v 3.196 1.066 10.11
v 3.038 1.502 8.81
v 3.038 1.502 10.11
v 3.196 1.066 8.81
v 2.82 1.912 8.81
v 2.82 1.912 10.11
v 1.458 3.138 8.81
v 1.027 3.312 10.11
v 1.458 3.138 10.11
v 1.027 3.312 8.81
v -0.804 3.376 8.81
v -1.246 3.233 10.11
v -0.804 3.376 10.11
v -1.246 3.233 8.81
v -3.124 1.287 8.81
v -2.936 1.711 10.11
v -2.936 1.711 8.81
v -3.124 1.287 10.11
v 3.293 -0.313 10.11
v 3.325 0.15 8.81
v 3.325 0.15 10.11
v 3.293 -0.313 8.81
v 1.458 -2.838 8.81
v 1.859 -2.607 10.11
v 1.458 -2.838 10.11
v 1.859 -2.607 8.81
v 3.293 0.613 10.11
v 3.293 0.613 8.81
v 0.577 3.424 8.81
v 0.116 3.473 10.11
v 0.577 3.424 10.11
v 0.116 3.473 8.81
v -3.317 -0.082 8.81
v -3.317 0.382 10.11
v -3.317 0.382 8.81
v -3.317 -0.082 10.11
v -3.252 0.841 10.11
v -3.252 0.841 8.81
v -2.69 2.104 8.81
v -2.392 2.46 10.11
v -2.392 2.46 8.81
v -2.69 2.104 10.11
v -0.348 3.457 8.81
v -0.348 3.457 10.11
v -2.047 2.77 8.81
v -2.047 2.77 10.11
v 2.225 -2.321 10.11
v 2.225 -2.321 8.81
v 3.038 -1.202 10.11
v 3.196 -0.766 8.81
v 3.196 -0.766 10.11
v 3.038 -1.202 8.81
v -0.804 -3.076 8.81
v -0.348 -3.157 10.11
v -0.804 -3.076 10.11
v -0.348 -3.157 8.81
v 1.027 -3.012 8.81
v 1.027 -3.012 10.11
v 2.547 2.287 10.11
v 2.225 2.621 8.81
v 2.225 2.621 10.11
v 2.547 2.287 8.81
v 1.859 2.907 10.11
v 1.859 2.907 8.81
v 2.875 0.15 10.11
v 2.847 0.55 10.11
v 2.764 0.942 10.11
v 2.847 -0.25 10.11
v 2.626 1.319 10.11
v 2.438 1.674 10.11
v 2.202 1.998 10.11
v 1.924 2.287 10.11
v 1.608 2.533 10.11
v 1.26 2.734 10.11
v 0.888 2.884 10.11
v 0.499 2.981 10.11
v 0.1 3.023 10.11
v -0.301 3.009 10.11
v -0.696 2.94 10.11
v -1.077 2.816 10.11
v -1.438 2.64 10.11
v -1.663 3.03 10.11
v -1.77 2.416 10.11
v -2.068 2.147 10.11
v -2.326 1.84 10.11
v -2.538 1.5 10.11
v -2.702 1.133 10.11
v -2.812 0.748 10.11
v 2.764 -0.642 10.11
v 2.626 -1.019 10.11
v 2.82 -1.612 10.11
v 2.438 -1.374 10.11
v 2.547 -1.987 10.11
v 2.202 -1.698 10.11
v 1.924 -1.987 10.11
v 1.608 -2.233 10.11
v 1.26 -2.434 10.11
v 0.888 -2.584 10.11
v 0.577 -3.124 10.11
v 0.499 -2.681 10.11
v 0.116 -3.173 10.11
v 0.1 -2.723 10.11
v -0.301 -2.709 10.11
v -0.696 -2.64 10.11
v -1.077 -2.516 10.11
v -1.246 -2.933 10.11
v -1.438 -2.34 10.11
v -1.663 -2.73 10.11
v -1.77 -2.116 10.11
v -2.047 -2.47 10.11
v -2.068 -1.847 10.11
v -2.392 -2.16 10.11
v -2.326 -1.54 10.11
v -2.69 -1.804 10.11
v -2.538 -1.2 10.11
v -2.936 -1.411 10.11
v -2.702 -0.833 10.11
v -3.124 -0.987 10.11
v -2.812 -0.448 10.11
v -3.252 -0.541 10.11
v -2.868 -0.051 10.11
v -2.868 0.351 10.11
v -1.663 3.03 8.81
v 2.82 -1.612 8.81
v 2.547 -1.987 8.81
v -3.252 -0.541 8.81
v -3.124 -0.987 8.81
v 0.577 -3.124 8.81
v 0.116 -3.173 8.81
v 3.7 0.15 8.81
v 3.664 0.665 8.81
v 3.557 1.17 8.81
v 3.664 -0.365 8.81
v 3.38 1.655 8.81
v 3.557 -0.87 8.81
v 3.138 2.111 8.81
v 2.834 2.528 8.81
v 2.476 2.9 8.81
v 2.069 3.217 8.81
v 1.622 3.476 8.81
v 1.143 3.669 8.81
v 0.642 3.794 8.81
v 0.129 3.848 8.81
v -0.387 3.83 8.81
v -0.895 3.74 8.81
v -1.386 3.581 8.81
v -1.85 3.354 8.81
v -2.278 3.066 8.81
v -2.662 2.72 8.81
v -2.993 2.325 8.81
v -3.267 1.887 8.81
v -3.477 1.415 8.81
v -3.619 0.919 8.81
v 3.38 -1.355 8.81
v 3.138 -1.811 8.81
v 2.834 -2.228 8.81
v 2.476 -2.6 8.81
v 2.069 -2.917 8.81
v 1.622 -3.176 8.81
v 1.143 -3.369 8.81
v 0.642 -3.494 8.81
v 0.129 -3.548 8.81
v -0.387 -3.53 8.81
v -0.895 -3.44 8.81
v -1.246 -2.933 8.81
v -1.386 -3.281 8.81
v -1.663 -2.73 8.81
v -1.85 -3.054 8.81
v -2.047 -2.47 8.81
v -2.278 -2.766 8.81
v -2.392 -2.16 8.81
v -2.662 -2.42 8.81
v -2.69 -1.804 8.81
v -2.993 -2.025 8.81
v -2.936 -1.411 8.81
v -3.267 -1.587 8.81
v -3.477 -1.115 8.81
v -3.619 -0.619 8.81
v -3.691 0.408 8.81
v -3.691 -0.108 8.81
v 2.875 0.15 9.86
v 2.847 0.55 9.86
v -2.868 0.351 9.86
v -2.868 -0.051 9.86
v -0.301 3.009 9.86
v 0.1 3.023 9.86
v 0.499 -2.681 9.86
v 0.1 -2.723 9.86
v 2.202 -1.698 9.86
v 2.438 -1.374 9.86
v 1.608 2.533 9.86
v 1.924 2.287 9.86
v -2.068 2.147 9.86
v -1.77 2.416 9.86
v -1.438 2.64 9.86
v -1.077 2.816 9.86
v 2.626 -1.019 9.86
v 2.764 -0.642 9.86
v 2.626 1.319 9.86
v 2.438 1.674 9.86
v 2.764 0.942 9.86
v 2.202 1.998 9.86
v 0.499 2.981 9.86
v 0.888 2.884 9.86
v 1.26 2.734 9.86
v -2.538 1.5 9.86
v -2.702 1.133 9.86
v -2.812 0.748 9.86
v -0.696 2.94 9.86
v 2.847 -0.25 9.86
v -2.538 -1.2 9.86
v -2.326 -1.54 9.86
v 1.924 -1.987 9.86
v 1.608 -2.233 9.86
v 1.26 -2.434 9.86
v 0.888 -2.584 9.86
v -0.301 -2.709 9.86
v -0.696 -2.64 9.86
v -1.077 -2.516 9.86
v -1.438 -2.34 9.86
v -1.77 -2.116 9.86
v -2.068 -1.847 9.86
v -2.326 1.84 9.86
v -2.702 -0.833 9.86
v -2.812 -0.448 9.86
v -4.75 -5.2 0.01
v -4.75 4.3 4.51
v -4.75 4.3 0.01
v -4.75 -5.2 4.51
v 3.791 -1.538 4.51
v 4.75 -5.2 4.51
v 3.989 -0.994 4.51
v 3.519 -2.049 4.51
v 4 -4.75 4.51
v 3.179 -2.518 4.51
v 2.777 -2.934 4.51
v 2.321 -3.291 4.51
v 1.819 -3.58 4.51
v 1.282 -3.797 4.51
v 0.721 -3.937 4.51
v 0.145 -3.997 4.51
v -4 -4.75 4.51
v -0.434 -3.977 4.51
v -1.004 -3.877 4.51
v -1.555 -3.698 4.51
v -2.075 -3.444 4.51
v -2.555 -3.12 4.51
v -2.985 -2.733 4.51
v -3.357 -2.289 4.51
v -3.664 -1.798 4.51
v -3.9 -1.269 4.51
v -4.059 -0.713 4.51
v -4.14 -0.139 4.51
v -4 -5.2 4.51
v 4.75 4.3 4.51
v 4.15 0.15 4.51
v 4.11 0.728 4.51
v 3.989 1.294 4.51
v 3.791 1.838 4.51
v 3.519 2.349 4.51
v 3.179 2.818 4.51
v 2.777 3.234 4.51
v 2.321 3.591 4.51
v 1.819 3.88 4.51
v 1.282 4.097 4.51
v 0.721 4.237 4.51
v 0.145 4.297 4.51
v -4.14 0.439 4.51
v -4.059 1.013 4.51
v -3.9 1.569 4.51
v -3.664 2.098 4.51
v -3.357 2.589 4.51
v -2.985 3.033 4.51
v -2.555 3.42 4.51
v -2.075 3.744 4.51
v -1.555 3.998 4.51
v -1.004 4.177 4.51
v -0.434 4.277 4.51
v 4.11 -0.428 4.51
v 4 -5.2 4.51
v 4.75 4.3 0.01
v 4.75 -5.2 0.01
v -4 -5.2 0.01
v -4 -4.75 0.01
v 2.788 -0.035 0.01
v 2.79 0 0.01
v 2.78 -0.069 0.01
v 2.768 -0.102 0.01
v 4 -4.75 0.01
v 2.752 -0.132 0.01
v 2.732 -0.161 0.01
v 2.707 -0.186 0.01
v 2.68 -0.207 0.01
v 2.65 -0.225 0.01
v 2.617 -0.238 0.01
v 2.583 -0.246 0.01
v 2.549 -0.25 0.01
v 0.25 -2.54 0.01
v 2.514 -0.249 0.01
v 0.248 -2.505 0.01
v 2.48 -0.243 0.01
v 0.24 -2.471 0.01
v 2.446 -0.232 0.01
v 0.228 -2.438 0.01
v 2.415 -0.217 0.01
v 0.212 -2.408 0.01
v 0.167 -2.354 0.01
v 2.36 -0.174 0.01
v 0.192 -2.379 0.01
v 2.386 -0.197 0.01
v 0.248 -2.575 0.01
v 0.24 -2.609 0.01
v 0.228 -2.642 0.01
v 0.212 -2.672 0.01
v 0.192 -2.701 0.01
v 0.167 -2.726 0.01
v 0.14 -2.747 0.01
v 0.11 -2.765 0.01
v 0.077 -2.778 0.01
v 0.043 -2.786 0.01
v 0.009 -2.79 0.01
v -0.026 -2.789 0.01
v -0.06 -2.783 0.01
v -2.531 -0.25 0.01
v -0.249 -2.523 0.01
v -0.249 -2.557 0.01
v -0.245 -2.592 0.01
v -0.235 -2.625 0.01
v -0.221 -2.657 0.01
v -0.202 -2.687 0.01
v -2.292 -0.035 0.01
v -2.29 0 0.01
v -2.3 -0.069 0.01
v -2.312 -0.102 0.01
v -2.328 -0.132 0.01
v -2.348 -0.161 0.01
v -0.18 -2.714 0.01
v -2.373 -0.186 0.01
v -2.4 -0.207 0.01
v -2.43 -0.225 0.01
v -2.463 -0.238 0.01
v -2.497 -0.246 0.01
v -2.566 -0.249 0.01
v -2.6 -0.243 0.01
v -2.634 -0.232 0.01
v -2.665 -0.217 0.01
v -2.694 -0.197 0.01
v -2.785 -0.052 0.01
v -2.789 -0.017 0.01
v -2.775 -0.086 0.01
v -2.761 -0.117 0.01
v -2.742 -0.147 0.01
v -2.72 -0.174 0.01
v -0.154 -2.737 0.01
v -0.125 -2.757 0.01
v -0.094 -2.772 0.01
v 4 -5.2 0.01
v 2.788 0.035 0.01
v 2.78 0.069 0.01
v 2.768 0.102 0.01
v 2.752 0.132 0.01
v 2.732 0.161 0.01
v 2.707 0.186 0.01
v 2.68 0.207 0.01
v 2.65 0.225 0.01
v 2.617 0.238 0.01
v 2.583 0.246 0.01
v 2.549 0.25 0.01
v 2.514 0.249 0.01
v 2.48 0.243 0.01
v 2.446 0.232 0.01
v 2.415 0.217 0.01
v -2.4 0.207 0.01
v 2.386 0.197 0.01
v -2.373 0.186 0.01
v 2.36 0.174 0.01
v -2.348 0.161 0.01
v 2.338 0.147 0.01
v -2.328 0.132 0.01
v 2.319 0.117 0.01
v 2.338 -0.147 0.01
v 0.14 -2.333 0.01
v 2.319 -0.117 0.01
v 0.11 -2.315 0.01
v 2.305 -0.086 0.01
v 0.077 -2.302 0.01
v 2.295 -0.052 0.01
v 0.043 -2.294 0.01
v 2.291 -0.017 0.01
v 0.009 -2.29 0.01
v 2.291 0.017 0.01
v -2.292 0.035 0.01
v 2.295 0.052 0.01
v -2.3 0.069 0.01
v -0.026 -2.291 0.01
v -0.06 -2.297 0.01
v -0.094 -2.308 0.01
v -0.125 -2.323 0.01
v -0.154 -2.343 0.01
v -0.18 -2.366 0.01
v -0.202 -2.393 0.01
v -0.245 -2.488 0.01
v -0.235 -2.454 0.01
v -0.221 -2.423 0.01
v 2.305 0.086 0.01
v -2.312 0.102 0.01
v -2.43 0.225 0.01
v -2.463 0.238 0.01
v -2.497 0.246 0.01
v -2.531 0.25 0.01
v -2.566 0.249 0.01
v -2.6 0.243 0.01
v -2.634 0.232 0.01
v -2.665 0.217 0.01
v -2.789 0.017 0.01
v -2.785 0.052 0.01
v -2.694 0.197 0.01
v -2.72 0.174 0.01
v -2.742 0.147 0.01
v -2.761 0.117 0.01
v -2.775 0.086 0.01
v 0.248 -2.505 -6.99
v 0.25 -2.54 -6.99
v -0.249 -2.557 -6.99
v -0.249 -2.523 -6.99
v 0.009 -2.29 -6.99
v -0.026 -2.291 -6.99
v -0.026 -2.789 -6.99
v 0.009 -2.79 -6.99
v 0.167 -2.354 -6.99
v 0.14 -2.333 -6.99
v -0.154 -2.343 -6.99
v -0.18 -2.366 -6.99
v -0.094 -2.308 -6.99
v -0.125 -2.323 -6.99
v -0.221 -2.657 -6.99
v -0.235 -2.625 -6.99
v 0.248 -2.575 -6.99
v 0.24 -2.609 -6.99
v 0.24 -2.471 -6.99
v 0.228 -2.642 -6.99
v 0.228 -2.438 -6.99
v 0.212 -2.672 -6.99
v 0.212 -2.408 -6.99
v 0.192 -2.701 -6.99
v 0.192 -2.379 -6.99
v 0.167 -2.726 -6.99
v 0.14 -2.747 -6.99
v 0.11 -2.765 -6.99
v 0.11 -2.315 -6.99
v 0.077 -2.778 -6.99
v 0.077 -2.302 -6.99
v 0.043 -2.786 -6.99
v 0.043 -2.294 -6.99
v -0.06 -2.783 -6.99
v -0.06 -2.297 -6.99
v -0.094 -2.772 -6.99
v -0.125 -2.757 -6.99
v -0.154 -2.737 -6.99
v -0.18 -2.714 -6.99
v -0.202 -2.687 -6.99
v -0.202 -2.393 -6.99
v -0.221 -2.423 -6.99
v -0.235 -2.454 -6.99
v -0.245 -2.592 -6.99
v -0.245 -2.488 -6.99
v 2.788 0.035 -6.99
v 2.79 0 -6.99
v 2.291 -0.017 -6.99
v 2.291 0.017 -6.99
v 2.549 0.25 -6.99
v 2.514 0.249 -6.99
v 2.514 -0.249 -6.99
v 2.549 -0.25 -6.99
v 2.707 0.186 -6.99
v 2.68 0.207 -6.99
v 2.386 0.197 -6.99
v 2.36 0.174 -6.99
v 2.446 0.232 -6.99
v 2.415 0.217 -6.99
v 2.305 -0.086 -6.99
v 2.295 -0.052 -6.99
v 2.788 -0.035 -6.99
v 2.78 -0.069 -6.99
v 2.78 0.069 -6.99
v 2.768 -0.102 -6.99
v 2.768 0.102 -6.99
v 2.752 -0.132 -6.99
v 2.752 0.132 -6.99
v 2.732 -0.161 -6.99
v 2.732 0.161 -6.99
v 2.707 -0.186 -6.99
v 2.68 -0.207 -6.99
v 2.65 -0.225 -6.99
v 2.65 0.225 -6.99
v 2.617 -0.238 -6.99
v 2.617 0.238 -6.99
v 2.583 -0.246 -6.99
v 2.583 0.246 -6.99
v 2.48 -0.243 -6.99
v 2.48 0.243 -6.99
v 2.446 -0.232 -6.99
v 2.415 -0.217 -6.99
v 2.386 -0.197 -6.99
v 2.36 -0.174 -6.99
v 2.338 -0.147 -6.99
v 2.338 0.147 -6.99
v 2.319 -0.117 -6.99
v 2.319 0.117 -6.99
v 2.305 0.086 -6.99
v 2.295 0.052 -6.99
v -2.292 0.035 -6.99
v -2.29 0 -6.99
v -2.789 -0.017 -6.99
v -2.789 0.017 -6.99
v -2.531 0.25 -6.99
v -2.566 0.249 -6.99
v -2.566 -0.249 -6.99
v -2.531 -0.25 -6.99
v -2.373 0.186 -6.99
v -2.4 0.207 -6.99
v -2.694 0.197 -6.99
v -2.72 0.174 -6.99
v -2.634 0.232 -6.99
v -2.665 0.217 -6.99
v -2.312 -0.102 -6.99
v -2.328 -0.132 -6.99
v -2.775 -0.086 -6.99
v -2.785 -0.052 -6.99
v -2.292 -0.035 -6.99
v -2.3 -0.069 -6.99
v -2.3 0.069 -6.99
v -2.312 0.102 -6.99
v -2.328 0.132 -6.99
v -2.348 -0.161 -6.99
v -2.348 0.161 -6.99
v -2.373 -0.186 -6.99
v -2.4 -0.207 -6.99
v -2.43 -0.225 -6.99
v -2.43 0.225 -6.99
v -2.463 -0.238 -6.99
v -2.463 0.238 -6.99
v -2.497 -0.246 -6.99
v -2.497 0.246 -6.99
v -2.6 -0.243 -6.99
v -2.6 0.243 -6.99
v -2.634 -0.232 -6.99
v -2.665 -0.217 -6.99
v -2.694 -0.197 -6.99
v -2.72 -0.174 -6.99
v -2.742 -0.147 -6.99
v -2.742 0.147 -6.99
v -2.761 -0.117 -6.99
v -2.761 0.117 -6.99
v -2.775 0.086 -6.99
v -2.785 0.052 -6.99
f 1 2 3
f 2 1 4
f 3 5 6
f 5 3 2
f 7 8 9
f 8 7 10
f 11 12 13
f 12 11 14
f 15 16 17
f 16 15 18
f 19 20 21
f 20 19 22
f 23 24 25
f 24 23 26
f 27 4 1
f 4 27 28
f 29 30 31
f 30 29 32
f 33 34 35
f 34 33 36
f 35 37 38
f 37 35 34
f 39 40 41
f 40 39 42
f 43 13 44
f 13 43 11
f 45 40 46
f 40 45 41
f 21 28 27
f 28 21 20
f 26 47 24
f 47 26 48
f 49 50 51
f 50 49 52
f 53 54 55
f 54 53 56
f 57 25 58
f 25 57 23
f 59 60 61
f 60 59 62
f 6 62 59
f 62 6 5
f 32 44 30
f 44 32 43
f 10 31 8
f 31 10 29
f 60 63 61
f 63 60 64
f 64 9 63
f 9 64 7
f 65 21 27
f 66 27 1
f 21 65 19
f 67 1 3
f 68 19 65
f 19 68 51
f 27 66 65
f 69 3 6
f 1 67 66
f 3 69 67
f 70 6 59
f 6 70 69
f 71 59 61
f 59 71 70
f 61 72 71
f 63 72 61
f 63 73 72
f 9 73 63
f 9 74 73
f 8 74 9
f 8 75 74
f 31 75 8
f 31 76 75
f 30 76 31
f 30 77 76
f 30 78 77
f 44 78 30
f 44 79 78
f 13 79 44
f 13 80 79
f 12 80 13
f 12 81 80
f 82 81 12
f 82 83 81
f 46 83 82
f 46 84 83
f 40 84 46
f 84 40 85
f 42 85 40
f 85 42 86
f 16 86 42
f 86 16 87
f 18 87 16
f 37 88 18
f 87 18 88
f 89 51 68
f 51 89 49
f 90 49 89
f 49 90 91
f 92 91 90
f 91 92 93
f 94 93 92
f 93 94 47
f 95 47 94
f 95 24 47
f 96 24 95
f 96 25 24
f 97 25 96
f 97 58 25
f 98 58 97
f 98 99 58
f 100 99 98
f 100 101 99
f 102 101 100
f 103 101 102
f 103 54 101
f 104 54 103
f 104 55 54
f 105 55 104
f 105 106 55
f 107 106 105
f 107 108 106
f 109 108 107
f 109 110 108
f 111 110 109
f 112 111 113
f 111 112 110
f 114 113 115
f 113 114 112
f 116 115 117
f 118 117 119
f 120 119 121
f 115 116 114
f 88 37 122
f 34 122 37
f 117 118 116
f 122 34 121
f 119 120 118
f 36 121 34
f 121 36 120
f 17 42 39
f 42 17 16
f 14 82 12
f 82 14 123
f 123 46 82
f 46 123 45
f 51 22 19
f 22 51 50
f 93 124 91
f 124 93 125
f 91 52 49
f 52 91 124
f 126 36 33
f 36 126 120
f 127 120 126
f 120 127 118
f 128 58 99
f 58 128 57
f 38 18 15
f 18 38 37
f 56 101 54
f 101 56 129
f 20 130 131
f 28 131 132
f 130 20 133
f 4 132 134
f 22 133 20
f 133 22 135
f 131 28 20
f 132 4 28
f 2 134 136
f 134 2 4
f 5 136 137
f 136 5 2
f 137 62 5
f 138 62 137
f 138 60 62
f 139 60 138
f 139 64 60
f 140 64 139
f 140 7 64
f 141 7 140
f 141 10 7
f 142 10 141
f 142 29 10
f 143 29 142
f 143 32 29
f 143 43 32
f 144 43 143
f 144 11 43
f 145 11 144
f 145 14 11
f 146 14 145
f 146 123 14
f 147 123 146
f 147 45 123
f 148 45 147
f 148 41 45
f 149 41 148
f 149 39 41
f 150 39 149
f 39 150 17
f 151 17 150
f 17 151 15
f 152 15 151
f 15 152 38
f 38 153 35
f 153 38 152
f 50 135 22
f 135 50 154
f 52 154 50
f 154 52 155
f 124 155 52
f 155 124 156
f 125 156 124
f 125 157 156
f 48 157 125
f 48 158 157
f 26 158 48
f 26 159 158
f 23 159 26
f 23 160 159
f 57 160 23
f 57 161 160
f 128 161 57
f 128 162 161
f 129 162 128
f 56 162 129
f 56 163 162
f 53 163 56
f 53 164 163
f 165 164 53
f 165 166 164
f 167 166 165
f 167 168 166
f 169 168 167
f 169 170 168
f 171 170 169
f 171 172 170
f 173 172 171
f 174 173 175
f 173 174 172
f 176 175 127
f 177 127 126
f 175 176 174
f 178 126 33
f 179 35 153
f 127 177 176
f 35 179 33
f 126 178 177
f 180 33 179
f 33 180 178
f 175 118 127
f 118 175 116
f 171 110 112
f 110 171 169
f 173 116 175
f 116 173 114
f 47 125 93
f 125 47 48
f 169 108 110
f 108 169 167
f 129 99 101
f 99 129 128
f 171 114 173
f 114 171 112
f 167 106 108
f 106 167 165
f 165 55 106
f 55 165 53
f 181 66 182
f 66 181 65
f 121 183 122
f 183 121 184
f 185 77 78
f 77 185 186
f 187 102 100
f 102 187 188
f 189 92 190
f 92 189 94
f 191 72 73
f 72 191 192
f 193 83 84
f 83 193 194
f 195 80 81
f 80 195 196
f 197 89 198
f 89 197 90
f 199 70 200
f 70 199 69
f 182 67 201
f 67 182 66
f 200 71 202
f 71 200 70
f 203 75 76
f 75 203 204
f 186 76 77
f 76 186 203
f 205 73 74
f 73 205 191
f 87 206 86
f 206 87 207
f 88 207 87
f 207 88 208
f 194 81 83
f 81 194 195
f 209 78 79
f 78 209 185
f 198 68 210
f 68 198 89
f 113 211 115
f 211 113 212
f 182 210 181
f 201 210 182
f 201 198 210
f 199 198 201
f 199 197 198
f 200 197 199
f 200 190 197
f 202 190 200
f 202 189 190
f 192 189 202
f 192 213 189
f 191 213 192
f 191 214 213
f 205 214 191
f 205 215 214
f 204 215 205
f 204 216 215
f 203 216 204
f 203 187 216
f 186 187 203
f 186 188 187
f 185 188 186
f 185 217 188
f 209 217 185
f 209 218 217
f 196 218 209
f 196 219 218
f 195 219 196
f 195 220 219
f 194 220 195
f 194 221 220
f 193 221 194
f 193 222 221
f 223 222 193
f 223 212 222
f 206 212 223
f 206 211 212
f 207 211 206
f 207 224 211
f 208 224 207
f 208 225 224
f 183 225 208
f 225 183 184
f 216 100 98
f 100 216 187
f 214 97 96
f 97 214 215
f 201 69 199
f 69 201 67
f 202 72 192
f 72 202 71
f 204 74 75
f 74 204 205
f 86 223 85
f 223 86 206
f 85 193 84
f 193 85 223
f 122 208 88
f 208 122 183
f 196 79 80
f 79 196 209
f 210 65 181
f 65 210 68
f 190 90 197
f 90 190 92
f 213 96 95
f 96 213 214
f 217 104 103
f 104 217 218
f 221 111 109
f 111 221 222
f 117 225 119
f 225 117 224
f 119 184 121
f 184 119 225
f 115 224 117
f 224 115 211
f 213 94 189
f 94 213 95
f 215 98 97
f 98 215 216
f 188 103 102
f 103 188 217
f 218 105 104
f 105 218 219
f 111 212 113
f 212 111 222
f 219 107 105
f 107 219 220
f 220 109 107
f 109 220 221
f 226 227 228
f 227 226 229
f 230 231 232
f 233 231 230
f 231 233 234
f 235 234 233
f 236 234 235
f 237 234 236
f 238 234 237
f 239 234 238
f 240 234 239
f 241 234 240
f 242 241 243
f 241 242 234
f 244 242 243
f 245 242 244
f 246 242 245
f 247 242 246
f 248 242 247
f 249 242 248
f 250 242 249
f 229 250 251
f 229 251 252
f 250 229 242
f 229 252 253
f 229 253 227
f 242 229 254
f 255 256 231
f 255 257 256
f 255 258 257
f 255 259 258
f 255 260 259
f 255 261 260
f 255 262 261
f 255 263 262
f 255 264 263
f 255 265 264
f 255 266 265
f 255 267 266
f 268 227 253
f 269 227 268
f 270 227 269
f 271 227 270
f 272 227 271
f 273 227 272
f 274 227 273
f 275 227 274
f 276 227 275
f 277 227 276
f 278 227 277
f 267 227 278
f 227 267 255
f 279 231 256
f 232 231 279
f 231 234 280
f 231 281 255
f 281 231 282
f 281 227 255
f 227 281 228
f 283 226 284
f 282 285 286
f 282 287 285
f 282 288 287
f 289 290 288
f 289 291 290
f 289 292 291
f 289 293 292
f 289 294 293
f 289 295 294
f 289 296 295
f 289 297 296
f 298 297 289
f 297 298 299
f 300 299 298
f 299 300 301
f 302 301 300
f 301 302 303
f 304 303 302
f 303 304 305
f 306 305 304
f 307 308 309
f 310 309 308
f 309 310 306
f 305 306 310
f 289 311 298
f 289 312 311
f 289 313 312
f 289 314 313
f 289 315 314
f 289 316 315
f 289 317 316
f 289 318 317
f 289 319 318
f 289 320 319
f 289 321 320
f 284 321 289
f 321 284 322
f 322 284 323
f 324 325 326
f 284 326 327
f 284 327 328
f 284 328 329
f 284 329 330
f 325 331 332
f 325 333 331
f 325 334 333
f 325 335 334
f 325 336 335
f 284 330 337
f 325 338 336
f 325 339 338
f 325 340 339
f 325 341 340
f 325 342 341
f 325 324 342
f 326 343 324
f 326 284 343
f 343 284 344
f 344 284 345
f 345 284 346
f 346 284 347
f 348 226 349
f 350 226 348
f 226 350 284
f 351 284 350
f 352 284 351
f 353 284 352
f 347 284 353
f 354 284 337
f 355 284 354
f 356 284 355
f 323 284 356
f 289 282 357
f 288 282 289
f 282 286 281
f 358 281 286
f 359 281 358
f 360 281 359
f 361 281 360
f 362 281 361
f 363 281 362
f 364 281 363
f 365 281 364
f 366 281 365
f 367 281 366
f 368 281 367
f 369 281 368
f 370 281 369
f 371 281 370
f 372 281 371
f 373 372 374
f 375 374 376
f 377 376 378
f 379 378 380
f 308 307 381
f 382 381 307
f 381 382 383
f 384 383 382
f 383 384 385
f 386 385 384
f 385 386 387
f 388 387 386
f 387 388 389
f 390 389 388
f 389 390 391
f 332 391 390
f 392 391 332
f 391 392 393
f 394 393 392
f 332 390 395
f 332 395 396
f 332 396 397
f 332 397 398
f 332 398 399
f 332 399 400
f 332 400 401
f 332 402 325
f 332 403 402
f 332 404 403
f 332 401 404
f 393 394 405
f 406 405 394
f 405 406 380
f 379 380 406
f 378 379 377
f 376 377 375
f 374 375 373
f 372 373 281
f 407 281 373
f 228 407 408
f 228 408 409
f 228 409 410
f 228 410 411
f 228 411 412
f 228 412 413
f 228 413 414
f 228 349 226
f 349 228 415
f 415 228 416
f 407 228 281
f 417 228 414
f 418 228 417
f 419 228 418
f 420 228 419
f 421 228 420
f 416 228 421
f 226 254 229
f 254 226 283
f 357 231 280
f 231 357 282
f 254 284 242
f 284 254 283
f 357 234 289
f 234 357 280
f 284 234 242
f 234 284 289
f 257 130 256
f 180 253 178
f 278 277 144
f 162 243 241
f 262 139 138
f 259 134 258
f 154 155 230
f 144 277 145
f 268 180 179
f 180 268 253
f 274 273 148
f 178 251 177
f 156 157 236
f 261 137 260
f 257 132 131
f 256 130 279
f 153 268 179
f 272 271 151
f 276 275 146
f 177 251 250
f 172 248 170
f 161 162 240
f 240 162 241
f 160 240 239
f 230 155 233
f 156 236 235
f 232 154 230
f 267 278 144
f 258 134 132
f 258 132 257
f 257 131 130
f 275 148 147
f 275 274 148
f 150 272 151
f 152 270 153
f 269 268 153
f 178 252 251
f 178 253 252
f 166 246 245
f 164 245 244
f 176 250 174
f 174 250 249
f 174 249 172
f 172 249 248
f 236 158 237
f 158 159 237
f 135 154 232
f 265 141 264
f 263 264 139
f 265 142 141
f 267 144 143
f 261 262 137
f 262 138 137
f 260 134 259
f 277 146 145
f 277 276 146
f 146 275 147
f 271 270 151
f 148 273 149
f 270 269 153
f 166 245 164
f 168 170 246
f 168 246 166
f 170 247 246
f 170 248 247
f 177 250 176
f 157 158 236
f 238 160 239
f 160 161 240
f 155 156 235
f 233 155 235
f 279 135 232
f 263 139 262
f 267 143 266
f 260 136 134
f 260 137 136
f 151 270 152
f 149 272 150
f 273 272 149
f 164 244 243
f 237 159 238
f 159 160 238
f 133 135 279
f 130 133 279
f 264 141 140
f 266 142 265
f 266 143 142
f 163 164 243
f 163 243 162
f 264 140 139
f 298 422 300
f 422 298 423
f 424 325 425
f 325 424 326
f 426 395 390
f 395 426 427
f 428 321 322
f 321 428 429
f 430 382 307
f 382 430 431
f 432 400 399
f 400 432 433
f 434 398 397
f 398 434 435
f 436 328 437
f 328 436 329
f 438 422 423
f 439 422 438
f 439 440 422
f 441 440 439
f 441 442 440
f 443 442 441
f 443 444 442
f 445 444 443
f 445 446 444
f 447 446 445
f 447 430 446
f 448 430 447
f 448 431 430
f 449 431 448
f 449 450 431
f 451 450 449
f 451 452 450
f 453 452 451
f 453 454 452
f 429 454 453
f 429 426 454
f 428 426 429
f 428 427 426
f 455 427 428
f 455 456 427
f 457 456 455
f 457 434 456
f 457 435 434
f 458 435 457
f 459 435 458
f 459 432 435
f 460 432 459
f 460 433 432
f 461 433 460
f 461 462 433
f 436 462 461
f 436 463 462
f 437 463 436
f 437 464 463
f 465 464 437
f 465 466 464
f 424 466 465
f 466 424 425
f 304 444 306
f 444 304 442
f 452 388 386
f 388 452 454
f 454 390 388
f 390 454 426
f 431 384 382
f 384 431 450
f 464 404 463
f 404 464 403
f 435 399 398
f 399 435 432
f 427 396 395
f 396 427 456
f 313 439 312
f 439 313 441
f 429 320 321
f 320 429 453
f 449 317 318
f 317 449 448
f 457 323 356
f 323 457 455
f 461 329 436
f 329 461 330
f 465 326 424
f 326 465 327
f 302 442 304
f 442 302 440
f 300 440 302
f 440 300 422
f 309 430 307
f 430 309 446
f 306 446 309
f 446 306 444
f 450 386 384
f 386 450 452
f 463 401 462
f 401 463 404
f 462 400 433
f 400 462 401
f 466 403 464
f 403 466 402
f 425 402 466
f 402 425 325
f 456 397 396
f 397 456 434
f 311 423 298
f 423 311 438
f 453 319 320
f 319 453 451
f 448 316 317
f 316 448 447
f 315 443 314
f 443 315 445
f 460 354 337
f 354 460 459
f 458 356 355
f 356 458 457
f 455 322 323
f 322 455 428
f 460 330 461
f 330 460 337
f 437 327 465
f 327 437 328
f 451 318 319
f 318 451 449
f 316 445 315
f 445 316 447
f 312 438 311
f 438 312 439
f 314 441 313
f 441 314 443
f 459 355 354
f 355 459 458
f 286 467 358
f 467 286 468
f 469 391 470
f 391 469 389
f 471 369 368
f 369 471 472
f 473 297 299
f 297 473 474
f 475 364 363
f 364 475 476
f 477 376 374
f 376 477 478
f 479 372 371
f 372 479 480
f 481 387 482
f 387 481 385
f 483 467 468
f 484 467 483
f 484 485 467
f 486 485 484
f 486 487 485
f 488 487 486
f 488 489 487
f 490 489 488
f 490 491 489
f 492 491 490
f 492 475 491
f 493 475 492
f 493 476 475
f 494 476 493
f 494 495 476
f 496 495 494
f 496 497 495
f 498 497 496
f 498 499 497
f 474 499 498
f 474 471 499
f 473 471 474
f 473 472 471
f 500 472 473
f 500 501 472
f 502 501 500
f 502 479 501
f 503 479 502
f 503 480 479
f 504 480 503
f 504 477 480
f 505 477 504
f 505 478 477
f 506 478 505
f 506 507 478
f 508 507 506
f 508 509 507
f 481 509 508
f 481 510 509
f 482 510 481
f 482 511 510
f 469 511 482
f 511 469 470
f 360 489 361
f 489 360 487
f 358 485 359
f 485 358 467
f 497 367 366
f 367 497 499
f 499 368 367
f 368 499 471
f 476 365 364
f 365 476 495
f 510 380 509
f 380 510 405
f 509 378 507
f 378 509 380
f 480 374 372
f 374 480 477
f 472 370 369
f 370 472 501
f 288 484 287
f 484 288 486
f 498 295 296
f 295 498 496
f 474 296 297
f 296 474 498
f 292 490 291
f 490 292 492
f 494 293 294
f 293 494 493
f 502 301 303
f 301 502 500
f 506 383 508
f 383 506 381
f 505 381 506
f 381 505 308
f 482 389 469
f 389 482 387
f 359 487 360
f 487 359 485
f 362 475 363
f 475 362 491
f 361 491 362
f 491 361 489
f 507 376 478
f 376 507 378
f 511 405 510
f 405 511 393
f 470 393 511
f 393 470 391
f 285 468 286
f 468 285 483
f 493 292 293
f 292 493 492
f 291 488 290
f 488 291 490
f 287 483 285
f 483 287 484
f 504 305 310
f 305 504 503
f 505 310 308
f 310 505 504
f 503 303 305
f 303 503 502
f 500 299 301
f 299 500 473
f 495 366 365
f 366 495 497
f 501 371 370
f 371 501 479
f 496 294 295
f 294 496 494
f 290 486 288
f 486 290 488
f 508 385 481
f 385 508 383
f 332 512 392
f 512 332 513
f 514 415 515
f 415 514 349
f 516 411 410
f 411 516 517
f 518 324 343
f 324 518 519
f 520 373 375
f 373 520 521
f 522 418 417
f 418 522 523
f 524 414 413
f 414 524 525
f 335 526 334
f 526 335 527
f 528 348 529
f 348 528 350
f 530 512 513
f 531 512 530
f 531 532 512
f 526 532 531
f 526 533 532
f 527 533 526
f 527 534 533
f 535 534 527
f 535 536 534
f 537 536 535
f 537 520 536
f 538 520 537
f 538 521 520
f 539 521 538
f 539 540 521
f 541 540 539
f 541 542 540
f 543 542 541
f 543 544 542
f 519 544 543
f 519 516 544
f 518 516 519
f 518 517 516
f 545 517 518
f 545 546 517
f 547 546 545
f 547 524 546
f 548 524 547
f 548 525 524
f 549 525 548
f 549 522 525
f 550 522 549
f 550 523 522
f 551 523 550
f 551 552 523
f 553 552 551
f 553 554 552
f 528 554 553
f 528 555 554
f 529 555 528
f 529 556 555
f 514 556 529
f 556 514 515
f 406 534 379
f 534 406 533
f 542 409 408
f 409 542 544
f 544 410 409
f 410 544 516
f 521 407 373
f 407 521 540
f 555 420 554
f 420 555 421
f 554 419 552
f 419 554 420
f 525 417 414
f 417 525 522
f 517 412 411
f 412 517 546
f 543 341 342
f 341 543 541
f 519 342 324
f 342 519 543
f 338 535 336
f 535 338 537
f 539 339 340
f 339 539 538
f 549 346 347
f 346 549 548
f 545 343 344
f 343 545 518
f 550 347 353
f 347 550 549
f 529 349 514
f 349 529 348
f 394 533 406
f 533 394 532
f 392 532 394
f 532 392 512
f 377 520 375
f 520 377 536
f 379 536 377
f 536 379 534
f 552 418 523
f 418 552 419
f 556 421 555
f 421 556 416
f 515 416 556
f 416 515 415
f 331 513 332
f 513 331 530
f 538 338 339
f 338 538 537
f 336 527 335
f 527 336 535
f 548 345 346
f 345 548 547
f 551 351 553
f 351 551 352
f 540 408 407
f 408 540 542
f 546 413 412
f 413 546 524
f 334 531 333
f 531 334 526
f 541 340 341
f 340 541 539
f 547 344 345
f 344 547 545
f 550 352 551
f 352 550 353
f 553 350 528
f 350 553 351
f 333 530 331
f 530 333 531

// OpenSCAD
$fn = 45;

translate([0, 0, 0.01])

union(){
	translate([0, -0.45, 0])
	union(){
		translate([0, 0.6, 4.5])
		cylinder(d = 8.3, d2 = 7.4, h = 4.3);
		
		difference(){
			translate([0, 0.6, 8.8])
			cylinder(d = 6.65, h = 1.3);
			
			translate([0, 0.6, 9.85])
			cylinder(d = 5.75, h = 0.25);
		}

		difference(){
			translate([-4.75, -4.75])
			cube([9.5, 9.5, 4.5]);
			translate([-4, -4.75, 0])
			cube([8, 0.45, 4.5]);
		}
	}
	translate([0, -2.54, -7])
	lead();
	
	translate([2.54, 0, -7])
	lead();
	translate([-2.54, 0, -7])
	lead();
}
module lead(){
	translate(-7)
	cylinder(d = 0.5, h = 7);
}
